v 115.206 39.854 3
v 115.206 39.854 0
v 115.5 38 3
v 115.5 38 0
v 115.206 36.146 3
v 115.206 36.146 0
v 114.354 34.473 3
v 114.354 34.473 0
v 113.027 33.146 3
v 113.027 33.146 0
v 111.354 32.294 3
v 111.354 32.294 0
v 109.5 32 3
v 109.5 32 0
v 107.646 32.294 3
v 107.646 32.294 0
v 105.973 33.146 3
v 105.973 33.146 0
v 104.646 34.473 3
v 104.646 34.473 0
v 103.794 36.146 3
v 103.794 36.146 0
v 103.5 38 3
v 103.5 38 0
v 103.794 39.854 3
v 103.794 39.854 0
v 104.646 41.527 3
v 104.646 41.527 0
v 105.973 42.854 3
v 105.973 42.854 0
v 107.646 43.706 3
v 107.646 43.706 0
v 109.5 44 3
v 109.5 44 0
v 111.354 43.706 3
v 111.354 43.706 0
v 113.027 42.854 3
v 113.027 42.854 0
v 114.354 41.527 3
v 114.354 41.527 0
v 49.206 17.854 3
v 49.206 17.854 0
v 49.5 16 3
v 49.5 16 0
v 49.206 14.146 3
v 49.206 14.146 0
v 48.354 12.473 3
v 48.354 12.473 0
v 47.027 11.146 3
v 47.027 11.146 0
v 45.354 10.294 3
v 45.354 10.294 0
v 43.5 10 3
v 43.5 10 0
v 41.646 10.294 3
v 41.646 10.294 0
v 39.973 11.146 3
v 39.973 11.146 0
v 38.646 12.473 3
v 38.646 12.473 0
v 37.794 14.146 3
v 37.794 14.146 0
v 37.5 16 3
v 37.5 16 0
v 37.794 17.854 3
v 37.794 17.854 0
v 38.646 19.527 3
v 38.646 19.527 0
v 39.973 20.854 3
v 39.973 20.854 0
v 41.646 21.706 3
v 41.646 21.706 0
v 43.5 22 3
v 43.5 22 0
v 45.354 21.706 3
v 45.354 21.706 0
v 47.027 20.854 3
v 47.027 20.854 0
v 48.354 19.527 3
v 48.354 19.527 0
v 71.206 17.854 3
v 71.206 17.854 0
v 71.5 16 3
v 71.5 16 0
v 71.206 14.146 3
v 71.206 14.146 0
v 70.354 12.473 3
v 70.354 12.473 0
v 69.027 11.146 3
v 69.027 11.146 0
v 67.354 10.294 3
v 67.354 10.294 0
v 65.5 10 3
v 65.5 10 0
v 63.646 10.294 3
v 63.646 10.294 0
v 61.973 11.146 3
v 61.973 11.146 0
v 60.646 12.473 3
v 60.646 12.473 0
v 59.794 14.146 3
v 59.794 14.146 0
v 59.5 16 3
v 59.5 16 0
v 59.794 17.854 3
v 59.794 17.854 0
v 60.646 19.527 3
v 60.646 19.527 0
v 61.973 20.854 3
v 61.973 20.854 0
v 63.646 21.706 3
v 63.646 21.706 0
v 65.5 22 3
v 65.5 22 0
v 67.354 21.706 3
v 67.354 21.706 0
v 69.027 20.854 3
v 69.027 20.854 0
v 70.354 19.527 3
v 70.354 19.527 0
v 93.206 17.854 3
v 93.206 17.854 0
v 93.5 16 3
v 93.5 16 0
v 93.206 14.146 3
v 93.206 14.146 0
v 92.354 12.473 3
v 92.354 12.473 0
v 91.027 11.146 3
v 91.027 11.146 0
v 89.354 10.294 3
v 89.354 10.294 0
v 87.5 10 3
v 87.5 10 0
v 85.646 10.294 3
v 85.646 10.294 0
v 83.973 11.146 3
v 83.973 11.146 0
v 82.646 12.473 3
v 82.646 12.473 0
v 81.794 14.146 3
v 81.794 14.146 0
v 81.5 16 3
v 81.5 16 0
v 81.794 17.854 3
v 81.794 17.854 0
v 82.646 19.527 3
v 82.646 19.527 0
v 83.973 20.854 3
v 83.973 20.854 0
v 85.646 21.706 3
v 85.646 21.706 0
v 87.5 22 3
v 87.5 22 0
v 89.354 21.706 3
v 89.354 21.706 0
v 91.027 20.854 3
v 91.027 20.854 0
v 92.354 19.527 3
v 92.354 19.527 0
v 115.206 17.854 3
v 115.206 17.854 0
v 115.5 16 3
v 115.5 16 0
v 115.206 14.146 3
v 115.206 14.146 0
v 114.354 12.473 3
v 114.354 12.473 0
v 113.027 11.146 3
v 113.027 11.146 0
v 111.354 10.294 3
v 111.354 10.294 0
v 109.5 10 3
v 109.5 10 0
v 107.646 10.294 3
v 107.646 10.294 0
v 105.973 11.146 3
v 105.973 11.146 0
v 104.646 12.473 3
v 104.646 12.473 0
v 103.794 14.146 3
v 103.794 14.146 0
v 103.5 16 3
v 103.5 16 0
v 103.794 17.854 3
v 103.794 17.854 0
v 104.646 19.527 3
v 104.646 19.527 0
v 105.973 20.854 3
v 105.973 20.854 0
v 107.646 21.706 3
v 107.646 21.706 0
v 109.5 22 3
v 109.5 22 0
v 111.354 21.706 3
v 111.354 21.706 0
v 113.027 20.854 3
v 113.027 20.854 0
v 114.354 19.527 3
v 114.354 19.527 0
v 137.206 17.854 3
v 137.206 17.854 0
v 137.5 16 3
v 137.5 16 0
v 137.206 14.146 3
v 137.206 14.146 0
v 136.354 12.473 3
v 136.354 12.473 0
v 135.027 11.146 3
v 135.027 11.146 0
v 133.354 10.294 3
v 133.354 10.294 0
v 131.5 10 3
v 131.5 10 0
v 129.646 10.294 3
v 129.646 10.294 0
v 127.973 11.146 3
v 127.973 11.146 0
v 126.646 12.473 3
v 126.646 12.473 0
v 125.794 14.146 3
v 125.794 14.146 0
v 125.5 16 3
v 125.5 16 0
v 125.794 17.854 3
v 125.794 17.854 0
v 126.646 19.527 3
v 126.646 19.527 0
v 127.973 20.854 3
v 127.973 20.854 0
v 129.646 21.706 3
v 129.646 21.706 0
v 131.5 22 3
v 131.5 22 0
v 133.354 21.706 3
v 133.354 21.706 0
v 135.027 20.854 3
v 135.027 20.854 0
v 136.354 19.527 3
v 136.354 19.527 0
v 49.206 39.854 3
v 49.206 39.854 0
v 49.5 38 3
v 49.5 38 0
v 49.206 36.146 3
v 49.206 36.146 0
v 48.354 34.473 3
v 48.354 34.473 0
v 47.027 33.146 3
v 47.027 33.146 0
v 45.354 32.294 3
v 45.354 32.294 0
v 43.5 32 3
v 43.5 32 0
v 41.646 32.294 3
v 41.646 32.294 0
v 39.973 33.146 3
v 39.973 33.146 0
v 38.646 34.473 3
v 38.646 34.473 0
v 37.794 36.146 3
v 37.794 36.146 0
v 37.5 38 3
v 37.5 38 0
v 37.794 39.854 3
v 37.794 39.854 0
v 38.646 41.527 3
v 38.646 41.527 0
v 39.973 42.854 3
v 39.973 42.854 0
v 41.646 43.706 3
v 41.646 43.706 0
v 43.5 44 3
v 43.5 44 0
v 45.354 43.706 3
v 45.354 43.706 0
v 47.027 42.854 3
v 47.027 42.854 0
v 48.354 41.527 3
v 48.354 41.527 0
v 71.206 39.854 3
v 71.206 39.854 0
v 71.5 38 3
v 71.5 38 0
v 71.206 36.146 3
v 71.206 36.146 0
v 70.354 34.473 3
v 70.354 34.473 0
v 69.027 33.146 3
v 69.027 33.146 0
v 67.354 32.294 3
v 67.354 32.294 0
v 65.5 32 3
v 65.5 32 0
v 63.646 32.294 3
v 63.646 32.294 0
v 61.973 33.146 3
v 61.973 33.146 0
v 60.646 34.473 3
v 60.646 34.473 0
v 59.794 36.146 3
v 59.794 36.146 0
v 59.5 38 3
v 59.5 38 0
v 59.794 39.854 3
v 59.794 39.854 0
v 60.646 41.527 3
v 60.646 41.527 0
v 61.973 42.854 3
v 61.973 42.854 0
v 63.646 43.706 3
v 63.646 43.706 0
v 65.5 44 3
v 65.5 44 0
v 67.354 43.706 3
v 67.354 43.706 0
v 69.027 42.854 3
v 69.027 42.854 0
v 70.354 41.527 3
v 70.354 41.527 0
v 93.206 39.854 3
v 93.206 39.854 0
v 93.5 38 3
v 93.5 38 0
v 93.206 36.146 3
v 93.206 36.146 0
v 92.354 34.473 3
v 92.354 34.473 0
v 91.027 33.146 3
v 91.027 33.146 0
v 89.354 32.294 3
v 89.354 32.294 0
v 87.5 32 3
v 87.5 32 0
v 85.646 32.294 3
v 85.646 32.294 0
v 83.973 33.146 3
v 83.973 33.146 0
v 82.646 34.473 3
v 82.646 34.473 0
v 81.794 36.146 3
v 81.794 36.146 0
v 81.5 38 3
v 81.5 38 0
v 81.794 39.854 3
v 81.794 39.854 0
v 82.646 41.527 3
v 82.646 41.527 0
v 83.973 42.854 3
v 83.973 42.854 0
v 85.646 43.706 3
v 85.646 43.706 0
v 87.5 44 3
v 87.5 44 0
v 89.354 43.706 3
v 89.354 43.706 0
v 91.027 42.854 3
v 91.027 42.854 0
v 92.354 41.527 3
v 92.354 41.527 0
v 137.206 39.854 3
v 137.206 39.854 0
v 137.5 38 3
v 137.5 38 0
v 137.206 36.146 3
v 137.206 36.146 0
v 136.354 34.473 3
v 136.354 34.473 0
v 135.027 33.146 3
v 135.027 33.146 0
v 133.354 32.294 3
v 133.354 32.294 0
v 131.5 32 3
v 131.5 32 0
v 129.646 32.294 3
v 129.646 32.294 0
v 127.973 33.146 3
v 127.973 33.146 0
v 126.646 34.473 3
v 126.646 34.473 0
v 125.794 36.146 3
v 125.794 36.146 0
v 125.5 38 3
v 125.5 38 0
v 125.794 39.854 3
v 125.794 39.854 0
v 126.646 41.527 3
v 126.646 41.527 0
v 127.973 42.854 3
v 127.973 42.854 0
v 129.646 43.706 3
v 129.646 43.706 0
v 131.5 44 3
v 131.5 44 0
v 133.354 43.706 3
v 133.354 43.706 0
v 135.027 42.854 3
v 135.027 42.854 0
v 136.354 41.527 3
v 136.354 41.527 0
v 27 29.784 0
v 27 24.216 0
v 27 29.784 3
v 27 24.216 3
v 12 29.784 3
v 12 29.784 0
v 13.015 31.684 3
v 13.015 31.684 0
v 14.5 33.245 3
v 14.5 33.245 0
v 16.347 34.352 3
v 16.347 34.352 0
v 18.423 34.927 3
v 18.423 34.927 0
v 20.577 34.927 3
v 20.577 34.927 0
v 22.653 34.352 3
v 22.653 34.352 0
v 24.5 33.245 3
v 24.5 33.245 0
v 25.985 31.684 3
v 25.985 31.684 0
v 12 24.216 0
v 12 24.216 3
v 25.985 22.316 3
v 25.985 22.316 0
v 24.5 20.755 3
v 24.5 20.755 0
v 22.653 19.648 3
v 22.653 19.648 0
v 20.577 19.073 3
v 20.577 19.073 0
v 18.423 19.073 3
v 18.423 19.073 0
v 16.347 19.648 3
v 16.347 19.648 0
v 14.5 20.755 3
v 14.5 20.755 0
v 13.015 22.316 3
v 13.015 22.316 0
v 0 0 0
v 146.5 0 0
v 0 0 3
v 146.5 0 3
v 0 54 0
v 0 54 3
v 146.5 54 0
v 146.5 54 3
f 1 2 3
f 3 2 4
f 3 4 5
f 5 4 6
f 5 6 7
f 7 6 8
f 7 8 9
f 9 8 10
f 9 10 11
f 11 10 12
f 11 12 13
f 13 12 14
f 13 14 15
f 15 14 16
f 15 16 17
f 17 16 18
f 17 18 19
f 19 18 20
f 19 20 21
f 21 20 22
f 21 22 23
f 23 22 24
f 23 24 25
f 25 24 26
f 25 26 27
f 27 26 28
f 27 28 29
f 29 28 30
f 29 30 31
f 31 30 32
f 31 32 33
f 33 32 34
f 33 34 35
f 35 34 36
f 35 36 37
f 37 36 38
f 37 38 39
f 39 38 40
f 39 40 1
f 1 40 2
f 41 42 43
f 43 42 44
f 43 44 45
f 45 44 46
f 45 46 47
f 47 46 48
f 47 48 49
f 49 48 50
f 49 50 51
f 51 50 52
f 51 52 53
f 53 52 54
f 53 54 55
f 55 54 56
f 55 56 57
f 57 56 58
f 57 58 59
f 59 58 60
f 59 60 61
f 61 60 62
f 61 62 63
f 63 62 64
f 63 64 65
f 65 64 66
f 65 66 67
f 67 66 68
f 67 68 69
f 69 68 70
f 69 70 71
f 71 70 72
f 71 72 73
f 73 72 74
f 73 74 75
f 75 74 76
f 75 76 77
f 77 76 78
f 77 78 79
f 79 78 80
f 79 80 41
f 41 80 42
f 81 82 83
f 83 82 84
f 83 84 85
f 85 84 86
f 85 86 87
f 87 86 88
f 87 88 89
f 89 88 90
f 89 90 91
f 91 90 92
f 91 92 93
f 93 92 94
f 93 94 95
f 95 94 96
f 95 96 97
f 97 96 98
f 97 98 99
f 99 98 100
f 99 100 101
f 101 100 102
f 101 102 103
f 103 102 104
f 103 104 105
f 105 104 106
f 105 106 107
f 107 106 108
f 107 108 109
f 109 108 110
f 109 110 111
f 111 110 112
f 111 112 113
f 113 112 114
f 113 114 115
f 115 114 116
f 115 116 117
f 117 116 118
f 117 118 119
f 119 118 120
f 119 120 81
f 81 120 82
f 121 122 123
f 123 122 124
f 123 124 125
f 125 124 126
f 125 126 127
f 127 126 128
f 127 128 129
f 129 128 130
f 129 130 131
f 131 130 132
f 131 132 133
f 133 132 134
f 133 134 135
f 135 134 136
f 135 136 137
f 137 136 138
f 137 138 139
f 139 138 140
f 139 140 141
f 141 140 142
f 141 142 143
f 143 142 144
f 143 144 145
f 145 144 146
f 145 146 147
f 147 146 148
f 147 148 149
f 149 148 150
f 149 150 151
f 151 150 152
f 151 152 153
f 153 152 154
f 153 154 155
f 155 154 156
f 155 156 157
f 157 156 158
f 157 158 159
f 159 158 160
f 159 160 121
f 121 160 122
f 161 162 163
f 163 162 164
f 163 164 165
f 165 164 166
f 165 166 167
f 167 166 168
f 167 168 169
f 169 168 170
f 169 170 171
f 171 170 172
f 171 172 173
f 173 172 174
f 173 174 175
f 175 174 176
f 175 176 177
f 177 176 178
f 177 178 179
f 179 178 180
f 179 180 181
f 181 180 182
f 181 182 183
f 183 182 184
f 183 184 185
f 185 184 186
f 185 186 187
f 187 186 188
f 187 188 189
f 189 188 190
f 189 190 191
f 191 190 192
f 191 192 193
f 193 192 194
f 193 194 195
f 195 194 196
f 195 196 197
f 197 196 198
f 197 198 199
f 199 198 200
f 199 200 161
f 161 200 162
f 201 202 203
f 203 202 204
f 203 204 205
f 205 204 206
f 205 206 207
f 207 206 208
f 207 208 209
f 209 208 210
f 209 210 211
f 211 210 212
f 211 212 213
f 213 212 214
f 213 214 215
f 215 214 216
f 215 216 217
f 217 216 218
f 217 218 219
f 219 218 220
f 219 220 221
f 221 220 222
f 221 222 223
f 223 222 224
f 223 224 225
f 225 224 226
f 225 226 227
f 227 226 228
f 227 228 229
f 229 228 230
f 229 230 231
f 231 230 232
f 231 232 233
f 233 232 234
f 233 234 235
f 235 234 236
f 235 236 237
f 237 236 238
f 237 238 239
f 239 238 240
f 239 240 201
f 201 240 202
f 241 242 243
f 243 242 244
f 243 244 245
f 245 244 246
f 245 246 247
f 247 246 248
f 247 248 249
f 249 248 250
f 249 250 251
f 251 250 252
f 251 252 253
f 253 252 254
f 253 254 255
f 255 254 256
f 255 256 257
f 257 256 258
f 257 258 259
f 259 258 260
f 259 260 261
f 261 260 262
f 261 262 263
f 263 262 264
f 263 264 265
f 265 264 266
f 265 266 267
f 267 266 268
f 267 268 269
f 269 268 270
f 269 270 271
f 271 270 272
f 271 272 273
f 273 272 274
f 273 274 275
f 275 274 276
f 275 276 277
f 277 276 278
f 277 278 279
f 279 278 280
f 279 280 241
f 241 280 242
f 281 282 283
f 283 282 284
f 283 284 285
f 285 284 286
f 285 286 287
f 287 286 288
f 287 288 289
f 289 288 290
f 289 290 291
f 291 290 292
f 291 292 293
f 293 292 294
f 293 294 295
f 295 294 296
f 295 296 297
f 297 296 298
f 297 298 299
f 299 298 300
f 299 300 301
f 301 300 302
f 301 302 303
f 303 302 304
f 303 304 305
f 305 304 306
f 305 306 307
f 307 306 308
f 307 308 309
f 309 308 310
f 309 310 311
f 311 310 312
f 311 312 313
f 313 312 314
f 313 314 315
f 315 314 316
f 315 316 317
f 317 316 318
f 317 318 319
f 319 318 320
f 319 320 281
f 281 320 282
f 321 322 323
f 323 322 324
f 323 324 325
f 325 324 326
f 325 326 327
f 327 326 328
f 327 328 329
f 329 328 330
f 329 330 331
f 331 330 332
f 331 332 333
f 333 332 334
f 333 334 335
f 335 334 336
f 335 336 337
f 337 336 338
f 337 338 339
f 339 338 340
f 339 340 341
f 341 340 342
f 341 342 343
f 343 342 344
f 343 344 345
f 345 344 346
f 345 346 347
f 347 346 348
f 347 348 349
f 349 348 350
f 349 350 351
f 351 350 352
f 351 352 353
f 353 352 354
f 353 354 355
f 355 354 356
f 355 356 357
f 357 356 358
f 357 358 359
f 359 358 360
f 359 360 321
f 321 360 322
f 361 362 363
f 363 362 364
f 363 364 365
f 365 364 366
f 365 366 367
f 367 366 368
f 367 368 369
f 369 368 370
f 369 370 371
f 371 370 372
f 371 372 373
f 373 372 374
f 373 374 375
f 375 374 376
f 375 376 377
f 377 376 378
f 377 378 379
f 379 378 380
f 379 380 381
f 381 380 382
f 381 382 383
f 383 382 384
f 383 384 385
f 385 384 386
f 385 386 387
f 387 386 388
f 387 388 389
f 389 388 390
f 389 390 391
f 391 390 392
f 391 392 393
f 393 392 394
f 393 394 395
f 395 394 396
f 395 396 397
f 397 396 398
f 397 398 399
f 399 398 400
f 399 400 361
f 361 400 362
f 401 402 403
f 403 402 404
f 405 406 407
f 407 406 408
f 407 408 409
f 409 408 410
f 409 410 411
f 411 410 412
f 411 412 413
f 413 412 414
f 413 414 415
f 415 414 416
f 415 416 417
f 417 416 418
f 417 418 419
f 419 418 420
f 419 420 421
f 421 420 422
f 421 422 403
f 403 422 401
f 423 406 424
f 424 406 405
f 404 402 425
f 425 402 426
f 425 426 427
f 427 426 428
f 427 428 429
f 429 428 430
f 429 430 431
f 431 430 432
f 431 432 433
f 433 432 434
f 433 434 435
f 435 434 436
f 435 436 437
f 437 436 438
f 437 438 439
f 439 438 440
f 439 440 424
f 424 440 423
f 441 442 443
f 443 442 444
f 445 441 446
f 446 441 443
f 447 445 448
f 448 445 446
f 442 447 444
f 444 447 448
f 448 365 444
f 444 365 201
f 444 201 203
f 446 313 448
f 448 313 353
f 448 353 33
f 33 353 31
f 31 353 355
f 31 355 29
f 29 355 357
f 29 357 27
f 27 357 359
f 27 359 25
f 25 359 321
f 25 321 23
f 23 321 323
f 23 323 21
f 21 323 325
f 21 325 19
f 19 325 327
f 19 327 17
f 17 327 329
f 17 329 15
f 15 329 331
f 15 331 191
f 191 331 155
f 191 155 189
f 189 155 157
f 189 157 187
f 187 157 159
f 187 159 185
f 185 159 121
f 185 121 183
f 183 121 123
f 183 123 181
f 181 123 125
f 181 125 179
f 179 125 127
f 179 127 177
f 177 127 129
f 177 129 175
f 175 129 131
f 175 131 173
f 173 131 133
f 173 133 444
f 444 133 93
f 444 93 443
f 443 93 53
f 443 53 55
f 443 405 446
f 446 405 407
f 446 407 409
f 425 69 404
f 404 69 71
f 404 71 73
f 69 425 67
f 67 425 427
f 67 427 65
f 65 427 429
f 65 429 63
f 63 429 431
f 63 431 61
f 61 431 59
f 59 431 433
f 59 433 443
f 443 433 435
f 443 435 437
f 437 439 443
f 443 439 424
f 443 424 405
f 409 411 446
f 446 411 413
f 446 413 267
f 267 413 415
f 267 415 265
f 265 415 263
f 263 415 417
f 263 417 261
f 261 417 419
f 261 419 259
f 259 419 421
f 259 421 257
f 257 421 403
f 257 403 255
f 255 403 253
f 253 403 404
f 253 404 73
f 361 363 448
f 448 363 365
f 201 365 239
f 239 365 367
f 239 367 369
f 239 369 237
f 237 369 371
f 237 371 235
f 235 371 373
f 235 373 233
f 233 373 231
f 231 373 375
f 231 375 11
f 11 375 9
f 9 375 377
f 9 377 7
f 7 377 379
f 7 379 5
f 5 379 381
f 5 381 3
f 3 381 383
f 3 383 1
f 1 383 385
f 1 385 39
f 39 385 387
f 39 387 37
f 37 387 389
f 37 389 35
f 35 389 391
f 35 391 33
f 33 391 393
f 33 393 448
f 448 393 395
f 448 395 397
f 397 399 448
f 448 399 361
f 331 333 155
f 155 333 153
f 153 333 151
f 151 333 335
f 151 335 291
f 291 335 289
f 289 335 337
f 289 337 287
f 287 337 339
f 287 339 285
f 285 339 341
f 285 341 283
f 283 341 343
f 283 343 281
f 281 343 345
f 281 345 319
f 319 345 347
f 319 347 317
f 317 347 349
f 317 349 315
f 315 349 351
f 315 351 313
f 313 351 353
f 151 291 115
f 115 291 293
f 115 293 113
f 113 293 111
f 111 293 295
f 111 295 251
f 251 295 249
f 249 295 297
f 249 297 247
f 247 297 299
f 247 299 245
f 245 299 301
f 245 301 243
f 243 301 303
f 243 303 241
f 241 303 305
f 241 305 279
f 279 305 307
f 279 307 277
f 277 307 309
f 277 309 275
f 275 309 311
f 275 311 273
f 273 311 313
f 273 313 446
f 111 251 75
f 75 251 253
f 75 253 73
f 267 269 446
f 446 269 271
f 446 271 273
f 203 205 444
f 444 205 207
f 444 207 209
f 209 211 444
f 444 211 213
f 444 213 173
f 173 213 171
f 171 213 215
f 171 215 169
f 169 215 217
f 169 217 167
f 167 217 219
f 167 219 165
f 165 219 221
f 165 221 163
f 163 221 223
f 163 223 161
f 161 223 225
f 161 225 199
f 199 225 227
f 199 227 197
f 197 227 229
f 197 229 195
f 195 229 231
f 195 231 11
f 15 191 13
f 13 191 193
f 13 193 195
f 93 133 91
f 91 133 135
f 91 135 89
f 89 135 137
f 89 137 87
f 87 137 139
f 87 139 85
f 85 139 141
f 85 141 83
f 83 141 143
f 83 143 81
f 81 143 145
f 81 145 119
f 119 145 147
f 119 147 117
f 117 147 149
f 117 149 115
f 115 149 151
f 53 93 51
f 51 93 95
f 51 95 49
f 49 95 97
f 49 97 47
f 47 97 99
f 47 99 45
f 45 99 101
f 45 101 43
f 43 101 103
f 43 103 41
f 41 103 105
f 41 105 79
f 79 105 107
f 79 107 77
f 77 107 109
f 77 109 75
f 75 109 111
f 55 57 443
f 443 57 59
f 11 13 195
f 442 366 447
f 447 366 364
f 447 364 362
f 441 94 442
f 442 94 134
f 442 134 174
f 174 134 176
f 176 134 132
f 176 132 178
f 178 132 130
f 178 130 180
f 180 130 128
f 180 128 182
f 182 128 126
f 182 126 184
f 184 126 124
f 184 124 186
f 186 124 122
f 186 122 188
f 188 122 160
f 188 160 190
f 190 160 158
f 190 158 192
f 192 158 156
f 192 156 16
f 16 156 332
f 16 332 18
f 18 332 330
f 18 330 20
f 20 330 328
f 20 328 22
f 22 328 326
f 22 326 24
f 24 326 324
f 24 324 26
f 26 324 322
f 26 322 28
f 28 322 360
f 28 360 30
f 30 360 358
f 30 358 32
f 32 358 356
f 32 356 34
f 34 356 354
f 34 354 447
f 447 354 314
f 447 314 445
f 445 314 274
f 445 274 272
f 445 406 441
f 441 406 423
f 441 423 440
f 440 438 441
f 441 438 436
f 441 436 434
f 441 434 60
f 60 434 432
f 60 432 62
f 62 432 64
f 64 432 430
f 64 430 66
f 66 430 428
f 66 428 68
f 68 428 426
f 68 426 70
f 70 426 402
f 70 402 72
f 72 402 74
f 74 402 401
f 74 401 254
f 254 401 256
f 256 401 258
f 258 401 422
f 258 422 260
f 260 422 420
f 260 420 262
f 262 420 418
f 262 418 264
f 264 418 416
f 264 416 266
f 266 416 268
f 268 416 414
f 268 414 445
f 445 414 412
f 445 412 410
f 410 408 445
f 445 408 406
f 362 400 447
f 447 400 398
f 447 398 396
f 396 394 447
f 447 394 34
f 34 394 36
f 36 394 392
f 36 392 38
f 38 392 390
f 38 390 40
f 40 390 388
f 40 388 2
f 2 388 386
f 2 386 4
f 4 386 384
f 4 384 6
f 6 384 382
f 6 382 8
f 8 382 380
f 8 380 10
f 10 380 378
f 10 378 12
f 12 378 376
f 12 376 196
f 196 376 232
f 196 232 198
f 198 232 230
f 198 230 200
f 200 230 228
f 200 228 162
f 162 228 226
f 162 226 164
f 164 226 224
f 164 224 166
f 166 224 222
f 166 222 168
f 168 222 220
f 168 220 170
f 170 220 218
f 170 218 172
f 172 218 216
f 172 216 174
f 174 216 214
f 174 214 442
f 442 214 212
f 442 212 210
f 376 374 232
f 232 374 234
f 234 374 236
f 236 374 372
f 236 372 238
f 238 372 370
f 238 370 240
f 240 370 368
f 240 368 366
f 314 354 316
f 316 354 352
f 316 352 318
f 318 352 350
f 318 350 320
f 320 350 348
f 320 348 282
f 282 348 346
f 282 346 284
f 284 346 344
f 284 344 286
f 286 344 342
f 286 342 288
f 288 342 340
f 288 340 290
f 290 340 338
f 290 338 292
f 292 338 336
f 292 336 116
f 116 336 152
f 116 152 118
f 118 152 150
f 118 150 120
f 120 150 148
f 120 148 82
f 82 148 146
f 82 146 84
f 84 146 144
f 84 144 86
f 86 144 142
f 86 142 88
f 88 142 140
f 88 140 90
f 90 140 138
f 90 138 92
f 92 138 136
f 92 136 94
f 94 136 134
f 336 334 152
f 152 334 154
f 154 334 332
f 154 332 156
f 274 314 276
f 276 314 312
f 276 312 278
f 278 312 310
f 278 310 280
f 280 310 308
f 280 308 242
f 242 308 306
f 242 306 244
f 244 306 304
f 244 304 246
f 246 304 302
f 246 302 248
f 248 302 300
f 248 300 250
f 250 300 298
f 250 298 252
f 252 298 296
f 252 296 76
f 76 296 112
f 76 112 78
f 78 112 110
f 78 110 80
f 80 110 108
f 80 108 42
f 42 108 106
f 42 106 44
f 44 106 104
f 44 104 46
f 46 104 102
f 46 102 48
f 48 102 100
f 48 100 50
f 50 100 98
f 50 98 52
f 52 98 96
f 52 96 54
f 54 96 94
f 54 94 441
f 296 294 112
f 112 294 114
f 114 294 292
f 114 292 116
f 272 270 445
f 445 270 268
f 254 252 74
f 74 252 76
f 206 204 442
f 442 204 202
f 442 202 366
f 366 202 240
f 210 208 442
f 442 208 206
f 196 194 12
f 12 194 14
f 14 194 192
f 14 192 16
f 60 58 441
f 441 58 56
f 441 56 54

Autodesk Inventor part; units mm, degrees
ref_plane "YZ Plane" through (0, 0, 0) normal (1, 0, 0) x (0, 1, 0)
ref_plane "XZ Plane" through (0, 0, 0) normal (0, 1, 0) x (-1, 0, 0)
ref_plane "XY Plane" through (0, 0, 0) normal (0, 0, 1) x (1, 0, 0)
sketch "Sketch1" plane through (0, 0, 0) normal (0, 0, 1) x (1, 0, 0)
  line L0 (0, 0) -> (146.5, 0)
  line L1 (146.5, 0) -> (146.5, 54)
  line L2 (146.5, 54) -> (0, 54)
  line L3 (0, 54) -> (0, 0)
  circle A0 centre (43.5, 16) radius 6
  circle A1 centre (65.5, 16) radius 6
  circle A2 centre (87.5, 16) radius 6
  circle A3 centre (109.5, 16) radius 6
  circle A4 centre (131.5, 16) radius 6
  circle A5 centre (43.5, 38) radius 6
  circle A6 centre (65.5, 38) radius 6
  circle A7 centre (87.5, 38) radius 6
  circle A8 centre (109.5, 38) radius 6
  circle A9 centre (131.5, 38) radius 6
  circle A10 centre (19.5, 27) radius 8
  line L4 (27, 19) -> (12, 19)
  line L5 (12, 19) -> (12, 35)
  line L6 (12, 35) -> (27, 35)
  line L7 (27, 35) -> (27, 19)
  line L8 (27, 19) -> (12, 35) construction
  line L9 (12, 19) -> (27, 35) construction
  point P0 (27, 24.2161)
  point P1 (12, 24.2161)
  point P2 (12, 29.7839)
  point P3 (27, 29.7839)
  dimension "d0" = 12
  dimension "d3" = 22
  dimension "d6" = 22
  dimension "d9" = 16
  dimension "d10" = 16
  dimension "d11" = 15
  dimension "d12" = 16
  dimension "d13" = 15
  dimension "d14" = 24
  dimension "d15" = 19.5
  dimension "d16" = 67
  dimension "d17" = 27
extrude "Extrusion1" add sketch "Sketch1" along normal blind 3 contours L3 L2 L1 L0 | A10 L7 | A10 L6 L7 | L7 L4 A10 | A10 L5 L6 | L4 L5 A10 | L5 A10
properties part number "button-front"
